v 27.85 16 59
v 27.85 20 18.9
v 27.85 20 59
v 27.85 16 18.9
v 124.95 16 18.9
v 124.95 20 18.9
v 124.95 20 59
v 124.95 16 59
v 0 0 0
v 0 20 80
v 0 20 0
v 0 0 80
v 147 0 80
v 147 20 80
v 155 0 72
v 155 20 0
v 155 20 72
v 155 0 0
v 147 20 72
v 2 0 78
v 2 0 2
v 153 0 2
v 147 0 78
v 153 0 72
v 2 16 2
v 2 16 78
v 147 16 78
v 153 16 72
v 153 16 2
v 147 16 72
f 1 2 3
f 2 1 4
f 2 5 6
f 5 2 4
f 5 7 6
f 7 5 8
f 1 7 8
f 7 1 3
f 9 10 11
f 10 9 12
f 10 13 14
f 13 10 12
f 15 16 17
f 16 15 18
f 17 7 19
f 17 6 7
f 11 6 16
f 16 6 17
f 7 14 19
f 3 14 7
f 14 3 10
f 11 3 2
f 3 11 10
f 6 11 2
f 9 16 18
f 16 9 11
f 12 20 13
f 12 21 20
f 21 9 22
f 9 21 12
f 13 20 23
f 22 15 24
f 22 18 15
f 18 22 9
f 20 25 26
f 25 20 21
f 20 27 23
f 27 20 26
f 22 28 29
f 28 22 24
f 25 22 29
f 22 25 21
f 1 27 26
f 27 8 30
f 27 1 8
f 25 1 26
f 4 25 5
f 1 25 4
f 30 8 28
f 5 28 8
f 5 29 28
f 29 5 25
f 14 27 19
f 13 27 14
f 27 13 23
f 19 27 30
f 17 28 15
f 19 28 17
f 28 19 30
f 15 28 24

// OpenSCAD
// file: display_mount.scad
module display_mount(){
    screen_pcb_width = 98.30;
    // adding .1 for tolerances
    screen_cutout_width = 97.10; 
    screen_pcb_height = 60;
    screen_cutout_height = 40.10; //adding .1 for tolerances

    screen_cutout_depth = 12.15;

    screen_cutout_offset = 10;

    screw_hole_radius = 1.75;
    screw_hole_inset = 2.0 ;
    screw_hole_height = 20;


    module screw_hole(){
        rotate([90,0,0]) cylinder(screw_hole_height,screw_hole_radius, screw_hole_radius);
    }
    
    translate([0,-screen_cutout_depth,screen_cutout_offset]) cube([screen_cutout_width,screen_cutout_depth,screen_cutout_height]);

    cube([screen_pcb_width,1,screen_pcb_height]);

    //translate([screw_hole_inset, 5, screw_hole_inset]) screw_hole();
    
    //translate([screw_hole_inset, 5, screen_pcb_height - screw_hole_inset]) screw_hole();
    
    //translate([screen_pcb_width - screw_hole_inset - .7, 5, screen_pcb_height - screw_hole_inset]) screw_hole();
    
    //translate([screen_pcb_width - screw_hole_inset - .7, 5, screw_hole_inset]) screw_hole();
}

//display_mount();
// main file
include <display_mount.scad>;

display_housing_width = 155;
display_housing_depth = 20;
display_housing_height = 80;

shell_thickness = 2;


//translate up 60 the pcb height to normalize to 0

difference(){
    cube([display_housing_width,display_housing_depth,display_housing_height]);
    translate([shell_thickness, 0, shell_thickness]) #cube([display_housing_width - shell_thickness * 2,display_housing_depth - shell_thickness * 2,display_housing_height - shell_thickness * 2]);
    translate([27.85 ,display_housing_depth - shell_thickness - 5,60 + 9]) rotate([180,0,0]) #display_mount();
    translate([display_housing_width -8, 0 ,display_housing_height- 8]){
        #cube([8,display_housing_depth,8]);
    }

}
